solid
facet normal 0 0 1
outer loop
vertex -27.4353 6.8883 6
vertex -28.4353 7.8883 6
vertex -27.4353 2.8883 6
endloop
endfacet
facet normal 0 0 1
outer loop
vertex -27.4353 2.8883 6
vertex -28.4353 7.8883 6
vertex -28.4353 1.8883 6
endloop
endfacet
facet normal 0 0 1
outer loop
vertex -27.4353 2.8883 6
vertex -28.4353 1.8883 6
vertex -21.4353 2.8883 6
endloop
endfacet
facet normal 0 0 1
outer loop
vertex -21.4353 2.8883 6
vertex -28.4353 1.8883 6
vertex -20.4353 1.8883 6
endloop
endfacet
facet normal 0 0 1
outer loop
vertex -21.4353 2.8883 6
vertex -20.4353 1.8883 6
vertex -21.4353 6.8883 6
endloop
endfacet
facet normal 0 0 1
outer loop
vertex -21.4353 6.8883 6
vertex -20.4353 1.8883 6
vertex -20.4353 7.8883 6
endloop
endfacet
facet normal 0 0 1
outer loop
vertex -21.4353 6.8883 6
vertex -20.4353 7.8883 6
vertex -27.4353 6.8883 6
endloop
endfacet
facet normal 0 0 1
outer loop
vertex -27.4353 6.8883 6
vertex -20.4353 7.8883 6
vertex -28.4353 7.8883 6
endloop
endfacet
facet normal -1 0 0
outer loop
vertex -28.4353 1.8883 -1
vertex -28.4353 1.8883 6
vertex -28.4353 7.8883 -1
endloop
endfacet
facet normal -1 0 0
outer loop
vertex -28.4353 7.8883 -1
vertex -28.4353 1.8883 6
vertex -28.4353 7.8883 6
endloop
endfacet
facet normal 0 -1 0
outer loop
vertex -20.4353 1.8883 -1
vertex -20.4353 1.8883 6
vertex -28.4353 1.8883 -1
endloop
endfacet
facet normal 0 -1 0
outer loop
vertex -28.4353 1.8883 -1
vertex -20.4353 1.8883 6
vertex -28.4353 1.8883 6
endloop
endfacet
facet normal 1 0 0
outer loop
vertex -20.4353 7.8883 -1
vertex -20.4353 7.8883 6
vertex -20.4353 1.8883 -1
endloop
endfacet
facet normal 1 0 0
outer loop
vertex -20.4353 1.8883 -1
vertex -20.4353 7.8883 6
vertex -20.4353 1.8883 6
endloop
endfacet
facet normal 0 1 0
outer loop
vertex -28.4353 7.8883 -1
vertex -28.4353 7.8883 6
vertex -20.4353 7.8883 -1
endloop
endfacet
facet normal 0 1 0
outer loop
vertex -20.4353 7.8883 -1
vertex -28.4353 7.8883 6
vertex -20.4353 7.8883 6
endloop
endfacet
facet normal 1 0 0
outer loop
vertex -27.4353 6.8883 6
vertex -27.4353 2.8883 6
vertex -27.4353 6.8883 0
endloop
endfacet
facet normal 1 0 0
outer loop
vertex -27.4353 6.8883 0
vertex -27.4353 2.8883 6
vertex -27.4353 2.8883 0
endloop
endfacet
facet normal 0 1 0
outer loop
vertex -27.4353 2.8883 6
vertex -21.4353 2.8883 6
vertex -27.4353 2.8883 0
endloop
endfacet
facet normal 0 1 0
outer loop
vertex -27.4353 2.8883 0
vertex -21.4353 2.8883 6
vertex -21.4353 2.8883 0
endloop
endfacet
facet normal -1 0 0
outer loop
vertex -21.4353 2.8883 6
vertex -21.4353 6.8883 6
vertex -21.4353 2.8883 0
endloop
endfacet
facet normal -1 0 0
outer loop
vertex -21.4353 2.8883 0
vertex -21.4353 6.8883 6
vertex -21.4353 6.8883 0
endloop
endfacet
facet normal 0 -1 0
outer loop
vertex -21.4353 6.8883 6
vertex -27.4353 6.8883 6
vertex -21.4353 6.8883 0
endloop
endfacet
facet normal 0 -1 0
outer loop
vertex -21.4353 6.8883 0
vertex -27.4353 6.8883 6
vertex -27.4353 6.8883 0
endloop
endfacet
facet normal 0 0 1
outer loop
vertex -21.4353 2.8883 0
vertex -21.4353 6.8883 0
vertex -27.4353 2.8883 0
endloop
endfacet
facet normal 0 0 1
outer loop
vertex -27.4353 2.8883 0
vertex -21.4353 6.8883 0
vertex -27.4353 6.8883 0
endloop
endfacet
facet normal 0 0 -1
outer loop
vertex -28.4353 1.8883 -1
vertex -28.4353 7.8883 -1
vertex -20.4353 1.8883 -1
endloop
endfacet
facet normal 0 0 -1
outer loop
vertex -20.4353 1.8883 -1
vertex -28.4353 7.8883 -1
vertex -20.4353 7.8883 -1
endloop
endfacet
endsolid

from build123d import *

# Parameters (mm, degrees)
CROQUIS1_W              = 8
CROQUIS1_H              = 6
CROQUIS1_W_2            = 6
CROQUIS1_H_2            = 4
SALIENTE_EXTRUIR1_DEPTH = 6
CROQUIS3_W              = 8
CROQUIS3_H              = 6
SALIENTE_EXTRUIR2_DEPTH = 1


with BuildPart() as part:
    # Croquis1 → Saliente-Extruir1 (new body)
    with BuildSketch(Plane.XY):
        with Locations((-24.435275528, 4.888284157)):
            Rectangle(CROQUIS1_W, CROQUIS1_H)
        with Locations((-24.435275528, 4.888284157)):
            Rectangle(CROQUIS1_W_2, CROQUIS1_H_2, mode=Mode.SUBTRACT)
    extrude(amount=SALIENTE_EXTRUIR1_DEPTH)

    # Croquis3 → Saliente-Extruir2 (add)
    with BuildSketch(Plane(origin=(0, 0, 0), x_dir=(-1, 0, 0), z_dir=(0, 0, -1))):
        with Locations((24.435275528, 4.888284157)):
            Rectangle(CROQUIS3_W, CROQUIS3_H)
    extrude(amount=SALIENTE_EXTRUIR2_DEPTH)


solid = part.part
